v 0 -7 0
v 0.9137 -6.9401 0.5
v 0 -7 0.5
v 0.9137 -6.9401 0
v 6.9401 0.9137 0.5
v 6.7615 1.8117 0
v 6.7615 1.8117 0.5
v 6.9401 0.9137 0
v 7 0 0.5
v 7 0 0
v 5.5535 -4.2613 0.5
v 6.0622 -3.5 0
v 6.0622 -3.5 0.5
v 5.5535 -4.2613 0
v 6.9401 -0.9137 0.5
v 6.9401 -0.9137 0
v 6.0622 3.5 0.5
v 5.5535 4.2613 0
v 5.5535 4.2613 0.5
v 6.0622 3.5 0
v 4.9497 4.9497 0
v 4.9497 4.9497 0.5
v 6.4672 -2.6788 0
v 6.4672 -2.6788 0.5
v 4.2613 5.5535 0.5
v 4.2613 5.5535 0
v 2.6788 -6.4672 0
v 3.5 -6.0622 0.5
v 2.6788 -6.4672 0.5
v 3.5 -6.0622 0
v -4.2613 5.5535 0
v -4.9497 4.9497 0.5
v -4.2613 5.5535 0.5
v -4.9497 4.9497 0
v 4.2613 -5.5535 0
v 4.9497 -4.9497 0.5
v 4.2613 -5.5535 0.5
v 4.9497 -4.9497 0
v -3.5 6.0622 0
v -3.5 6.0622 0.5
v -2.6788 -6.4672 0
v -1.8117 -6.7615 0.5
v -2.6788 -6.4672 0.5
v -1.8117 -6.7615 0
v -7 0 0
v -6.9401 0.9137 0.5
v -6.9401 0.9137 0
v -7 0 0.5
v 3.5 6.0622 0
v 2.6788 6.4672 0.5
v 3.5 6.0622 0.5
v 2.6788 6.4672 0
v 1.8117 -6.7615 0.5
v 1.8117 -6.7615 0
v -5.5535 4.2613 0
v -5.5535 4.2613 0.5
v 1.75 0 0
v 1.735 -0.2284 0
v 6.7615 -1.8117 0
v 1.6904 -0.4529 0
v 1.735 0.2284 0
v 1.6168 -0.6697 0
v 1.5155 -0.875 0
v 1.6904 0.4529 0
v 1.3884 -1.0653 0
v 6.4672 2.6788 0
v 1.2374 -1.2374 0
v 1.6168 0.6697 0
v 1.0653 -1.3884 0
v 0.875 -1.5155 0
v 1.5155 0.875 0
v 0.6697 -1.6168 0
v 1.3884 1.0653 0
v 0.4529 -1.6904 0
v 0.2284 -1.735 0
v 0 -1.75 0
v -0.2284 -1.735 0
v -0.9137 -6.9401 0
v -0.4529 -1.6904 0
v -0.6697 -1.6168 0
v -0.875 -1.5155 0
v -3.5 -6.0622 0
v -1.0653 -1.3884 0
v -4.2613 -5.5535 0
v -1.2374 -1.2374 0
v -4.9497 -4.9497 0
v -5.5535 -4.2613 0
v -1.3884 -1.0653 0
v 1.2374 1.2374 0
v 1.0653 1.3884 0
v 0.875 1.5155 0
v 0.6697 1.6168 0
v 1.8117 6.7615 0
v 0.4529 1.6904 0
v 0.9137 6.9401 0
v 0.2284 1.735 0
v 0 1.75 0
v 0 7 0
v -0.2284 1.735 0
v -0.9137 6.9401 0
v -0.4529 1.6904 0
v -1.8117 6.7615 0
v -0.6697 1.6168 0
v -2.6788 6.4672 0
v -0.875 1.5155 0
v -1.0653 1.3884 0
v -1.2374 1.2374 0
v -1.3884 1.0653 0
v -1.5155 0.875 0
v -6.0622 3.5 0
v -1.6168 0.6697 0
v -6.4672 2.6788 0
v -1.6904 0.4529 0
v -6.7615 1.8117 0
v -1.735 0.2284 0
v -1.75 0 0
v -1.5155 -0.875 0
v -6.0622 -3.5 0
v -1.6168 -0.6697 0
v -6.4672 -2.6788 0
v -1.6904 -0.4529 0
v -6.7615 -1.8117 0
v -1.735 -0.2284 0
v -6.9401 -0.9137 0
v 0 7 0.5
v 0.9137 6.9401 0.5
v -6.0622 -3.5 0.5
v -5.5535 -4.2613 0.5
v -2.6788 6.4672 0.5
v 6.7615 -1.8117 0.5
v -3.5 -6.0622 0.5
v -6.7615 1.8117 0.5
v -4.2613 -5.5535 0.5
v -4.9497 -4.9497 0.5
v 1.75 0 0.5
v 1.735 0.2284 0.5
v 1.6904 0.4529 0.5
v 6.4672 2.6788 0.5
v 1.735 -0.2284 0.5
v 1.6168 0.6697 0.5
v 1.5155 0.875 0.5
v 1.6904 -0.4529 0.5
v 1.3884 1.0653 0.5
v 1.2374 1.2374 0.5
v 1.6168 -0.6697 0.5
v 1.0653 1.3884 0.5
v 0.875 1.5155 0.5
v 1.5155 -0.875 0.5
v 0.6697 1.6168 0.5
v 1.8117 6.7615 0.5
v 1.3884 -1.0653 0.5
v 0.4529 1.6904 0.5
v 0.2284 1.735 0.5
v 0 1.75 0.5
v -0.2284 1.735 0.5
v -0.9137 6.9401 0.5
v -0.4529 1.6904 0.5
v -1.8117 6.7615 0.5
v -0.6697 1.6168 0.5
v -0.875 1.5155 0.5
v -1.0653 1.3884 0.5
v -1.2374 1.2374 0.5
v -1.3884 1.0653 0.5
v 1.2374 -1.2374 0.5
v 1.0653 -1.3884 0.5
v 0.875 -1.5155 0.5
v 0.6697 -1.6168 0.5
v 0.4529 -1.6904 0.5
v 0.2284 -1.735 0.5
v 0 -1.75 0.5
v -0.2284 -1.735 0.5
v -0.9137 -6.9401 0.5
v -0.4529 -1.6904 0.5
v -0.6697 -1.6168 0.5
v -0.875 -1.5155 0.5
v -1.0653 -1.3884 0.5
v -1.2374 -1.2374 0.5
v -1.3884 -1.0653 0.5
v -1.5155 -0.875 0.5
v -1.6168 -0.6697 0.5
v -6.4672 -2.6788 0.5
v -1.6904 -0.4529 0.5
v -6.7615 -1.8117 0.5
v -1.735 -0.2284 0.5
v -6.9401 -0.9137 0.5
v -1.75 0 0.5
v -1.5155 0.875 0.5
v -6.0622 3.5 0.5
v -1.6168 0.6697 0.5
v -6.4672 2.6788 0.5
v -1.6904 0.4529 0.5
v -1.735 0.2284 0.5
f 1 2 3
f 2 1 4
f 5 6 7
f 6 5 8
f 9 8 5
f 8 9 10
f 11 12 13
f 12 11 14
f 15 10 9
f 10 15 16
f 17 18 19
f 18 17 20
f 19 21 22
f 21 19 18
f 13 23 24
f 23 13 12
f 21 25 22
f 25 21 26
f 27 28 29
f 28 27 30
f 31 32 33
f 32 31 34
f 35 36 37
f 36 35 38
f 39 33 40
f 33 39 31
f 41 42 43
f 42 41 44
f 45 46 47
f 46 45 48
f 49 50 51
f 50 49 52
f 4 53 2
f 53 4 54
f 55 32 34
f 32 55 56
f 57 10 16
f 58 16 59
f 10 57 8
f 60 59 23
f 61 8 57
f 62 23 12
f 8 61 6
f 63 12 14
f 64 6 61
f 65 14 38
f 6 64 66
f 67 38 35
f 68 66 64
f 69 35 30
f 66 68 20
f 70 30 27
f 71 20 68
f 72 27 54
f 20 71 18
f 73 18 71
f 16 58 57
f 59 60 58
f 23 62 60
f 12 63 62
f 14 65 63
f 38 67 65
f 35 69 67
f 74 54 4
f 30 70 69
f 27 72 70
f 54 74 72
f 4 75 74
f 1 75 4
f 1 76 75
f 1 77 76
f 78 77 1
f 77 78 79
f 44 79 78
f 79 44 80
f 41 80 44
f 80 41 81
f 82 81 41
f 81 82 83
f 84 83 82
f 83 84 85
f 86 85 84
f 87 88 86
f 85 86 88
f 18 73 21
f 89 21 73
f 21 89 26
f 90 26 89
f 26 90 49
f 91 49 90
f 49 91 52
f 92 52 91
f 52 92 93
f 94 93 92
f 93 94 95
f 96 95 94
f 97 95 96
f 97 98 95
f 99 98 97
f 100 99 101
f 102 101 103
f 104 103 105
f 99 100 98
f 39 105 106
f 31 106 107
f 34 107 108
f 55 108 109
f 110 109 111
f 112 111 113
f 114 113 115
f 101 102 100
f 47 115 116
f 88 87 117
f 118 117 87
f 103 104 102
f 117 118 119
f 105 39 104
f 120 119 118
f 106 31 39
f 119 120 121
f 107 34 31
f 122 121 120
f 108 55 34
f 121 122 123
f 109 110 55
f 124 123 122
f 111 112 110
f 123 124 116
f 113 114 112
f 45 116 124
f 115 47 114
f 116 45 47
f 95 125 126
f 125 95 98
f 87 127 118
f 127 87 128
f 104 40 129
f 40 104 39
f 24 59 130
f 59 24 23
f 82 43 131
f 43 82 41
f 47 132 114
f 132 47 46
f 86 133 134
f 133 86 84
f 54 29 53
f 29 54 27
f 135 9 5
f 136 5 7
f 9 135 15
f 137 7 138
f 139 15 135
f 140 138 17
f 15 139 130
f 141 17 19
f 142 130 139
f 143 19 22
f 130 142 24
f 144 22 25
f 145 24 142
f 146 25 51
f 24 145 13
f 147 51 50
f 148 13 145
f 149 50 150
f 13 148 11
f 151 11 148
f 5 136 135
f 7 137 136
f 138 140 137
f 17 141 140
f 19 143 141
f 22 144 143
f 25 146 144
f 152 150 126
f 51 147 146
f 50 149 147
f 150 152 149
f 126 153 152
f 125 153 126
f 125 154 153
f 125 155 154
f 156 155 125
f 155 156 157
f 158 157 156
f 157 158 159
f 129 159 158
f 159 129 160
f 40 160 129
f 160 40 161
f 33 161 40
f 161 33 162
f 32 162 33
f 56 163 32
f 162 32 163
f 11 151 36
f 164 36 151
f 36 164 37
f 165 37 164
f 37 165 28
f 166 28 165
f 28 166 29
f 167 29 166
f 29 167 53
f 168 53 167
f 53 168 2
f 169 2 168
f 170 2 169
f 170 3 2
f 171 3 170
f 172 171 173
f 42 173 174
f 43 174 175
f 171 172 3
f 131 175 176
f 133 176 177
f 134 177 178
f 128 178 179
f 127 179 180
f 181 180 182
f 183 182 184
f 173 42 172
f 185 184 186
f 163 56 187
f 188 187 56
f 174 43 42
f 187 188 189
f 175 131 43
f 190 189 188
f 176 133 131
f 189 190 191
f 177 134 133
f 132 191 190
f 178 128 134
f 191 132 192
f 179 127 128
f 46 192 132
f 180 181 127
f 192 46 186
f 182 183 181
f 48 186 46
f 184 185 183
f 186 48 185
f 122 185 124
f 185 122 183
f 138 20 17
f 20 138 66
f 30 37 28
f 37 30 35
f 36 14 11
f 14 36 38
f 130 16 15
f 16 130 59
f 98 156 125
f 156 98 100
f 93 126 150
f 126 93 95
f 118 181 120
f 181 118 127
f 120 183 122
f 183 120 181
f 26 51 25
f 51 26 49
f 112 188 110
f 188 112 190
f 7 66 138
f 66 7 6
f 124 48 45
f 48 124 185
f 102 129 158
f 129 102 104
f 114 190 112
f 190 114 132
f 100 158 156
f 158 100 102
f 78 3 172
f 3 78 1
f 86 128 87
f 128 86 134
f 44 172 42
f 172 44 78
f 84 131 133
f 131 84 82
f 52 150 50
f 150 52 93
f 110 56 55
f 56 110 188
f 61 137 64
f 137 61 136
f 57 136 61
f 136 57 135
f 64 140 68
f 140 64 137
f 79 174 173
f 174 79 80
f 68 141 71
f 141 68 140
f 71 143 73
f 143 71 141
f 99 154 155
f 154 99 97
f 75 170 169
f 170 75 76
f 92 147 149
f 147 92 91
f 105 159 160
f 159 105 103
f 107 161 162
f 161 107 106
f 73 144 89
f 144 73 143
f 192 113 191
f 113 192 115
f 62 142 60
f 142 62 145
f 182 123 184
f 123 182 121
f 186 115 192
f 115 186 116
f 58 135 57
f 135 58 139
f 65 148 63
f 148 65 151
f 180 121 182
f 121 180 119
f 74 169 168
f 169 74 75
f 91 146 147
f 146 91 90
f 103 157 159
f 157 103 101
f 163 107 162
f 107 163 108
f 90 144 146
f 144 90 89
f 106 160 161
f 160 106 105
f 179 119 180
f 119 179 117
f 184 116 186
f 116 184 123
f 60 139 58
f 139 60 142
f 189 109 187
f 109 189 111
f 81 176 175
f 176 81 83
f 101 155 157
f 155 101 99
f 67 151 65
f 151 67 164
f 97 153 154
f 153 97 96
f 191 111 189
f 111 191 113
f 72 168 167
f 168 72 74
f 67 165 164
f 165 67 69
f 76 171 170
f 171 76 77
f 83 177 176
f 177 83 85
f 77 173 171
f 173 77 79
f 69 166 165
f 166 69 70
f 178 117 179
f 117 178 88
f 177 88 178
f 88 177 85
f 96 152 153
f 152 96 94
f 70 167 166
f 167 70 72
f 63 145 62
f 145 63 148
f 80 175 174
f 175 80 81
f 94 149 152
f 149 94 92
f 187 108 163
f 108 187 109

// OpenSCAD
// Gen-DD — assembly gap shim, h = run_clear (rotor face -> flange); copper is inside the flanges
include <parameters.scad>;
$fn = 48;
difference() {
    cylinder(d=spacer_pad_od, h=gap_spacer_h);
    translate([0, 0, -0.1]) cylinder(d=spacer_pad_id, h=gap_spacer_h + 0.2);
}
